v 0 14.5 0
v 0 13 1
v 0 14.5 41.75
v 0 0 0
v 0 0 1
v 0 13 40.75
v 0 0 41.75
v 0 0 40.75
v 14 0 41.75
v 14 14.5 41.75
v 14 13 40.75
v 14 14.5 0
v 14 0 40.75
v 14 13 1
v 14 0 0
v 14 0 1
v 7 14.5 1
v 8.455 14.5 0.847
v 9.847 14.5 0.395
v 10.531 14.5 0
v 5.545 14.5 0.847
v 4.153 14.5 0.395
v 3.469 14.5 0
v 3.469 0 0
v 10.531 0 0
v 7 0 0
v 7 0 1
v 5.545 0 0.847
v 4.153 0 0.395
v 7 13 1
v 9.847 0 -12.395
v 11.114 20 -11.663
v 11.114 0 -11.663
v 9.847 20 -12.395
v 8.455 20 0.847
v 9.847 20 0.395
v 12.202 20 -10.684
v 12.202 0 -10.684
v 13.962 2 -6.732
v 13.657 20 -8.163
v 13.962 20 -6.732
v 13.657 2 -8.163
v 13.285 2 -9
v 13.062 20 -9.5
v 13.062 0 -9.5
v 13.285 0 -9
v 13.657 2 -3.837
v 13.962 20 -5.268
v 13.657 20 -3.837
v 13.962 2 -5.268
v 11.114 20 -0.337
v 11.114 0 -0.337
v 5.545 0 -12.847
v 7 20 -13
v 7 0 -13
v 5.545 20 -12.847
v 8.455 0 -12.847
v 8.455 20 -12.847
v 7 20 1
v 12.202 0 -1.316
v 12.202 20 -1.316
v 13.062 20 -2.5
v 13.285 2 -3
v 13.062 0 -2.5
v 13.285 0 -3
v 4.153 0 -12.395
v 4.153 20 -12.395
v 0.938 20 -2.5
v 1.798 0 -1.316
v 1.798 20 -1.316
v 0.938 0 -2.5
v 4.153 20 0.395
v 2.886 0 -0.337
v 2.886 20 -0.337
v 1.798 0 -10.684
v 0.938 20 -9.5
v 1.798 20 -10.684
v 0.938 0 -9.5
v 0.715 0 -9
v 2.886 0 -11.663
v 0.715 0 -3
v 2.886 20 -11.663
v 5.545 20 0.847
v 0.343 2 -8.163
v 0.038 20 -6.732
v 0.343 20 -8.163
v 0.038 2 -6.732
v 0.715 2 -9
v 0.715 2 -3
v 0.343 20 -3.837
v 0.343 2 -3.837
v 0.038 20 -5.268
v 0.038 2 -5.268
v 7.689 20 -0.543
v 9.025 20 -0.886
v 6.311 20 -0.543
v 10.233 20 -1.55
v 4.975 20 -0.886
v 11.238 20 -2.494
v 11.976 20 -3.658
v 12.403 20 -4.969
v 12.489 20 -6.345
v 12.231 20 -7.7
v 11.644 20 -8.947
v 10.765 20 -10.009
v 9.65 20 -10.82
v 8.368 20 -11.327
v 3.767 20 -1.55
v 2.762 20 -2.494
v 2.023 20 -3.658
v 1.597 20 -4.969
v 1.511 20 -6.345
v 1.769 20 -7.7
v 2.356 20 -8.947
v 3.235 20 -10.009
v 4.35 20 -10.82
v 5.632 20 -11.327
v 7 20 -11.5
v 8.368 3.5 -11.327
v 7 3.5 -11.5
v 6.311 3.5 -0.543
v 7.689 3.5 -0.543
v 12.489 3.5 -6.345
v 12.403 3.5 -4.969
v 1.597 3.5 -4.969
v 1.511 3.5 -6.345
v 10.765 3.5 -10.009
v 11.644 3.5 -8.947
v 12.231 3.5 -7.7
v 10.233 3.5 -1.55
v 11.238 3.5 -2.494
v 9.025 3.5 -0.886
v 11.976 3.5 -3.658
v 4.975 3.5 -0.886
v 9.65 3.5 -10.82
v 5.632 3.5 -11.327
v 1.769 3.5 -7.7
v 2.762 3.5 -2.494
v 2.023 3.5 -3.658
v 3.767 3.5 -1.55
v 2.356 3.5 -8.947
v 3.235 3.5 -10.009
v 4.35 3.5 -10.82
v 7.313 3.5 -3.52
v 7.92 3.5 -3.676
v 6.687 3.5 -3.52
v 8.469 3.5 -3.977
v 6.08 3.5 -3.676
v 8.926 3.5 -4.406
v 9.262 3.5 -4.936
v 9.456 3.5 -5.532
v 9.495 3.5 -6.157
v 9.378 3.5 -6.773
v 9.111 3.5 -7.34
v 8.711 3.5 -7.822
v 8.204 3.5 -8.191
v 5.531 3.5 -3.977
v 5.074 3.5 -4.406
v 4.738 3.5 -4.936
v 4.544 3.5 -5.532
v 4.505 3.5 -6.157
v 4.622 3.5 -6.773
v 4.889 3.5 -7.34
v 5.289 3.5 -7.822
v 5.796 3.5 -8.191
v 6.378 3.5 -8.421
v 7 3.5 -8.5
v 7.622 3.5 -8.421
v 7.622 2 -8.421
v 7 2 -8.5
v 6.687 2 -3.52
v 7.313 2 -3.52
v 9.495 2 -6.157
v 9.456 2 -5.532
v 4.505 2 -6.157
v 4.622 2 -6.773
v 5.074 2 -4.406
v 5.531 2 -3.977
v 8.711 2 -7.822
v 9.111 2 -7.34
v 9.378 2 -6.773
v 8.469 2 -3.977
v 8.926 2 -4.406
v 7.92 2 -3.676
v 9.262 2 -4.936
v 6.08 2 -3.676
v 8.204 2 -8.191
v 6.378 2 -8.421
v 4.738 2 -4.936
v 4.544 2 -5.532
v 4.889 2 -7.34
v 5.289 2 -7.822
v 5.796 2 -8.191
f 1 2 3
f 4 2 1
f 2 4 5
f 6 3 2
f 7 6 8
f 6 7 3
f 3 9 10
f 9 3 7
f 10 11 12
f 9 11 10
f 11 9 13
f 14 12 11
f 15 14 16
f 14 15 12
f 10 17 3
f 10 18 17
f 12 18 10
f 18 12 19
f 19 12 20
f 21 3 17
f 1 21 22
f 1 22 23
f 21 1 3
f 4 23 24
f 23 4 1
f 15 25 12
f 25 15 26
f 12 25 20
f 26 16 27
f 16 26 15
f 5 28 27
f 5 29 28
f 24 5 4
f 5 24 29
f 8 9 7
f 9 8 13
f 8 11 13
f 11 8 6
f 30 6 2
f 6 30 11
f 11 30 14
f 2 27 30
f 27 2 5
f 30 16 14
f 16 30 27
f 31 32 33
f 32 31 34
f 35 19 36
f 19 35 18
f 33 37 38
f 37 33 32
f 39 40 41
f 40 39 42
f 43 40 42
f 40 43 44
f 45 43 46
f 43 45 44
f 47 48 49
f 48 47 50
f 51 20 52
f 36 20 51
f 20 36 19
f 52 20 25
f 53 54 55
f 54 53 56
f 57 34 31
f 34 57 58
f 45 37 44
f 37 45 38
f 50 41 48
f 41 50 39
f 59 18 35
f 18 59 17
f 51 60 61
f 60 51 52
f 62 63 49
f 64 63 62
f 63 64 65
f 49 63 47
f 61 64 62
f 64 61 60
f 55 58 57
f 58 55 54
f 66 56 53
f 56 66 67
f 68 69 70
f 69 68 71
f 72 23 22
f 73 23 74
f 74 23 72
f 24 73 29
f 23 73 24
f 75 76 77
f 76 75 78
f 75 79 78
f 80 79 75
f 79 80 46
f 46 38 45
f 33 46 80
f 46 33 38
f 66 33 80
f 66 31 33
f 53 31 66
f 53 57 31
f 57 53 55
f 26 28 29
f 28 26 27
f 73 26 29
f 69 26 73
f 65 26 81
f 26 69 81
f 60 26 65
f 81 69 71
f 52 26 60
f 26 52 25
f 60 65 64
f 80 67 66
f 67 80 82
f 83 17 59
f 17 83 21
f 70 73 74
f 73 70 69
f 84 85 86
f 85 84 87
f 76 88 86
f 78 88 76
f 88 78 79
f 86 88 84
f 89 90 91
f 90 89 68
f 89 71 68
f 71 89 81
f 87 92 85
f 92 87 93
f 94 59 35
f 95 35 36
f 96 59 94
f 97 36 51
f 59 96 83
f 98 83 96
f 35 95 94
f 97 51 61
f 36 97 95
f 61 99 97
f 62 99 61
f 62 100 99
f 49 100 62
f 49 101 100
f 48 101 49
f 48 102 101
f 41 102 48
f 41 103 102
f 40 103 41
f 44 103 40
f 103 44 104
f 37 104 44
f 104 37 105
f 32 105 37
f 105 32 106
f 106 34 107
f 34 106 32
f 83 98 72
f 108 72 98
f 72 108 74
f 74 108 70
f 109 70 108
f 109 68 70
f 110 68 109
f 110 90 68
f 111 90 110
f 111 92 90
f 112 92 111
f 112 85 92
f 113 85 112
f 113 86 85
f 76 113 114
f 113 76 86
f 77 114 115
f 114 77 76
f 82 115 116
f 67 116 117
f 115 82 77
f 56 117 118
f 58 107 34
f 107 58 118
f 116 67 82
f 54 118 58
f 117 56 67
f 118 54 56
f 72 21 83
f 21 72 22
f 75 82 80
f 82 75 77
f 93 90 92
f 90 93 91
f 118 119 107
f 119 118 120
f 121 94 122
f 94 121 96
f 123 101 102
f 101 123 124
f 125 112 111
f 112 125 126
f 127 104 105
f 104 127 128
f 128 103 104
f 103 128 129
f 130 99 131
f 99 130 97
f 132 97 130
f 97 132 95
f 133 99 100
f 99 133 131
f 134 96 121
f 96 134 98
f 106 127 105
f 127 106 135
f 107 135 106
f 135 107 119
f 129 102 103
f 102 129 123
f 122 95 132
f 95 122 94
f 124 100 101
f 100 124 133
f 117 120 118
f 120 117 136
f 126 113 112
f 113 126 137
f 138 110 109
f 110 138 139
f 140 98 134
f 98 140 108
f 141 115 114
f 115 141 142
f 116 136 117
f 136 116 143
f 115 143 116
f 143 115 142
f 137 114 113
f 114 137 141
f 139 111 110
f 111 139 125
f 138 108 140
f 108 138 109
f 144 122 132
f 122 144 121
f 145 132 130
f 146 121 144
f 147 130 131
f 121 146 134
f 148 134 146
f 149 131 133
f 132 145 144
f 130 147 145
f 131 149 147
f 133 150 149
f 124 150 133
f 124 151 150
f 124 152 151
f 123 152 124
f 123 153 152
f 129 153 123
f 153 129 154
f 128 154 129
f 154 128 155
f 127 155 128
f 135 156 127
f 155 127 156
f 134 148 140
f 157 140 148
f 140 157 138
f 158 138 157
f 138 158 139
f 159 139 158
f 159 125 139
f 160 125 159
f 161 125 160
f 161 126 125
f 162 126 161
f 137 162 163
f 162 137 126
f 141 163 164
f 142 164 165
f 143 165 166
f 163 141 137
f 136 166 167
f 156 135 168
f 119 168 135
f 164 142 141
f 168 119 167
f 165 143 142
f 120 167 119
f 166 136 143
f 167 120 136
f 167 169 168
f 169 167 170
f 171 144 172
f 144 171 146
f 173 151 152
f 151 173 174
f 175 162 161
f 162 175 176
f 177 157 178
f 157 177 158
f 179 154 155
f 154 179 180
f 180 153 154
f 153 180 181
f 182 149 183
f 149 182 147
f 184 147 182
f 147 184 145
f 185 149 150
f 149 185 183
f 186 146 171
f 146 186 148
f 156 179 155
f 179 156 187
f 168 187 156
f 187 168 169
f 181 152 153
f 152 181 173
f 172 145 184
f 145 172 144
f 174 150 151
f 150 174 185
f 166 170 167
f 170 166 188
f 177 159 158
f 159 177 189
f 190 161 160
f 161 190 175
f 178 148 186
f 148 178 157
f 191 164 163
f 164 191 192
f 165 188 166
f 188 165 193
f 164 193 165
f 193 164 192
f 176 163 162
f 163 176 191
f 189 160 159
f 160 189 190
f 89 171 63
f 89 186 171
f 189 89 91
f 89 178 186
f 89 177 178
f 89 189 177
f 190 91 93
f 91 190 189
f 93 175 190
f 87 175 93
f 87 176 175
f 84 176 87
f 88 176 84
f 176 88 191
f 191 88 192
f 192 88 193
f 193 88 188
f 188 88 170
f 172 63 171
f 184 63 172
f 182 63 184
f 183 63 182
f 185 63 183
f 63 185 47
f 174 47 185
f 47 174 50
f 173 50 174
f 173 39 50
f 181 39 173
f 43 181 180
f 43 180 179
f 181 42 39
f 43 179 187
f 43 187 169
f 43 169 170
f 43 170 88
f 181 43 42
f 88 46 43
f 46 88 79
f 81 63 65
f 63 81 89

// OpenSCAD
module fence_attachment() {
    difference() {
        cube([14, 14.5, 41.75]);
        translate([0, 0, 1]) { cube([14, 13, 39.75]); }
    }
}

module ring() {
    difference() {
        cylinder(h=20, r=7, $fn=30, center = true);
        cylinder(h=20, r=5.5, $fn=25, center = true);
    }
}


module bottom() {
    ring();

     translate([0, 0, 8.25]) {
        height = 3.5;
        difference() {
            cylinder(h= height, r=5.5, $fn=25, center = true);
            cylinder(h= height, r=2.5, $fn=25, center = true);
        }
    }
}

module cap() {
    difference() {
        bottom();
        
        rotate([0, 0, 90]) {
            translate([-7, -3, 8]) { 
                cube([14, 6, 2]);
            }
        }
    }
}

fence_attachment();

translate([7, 10, -6]) {
    rotate([90, 90, 0]) {
        cap();
    }
}
